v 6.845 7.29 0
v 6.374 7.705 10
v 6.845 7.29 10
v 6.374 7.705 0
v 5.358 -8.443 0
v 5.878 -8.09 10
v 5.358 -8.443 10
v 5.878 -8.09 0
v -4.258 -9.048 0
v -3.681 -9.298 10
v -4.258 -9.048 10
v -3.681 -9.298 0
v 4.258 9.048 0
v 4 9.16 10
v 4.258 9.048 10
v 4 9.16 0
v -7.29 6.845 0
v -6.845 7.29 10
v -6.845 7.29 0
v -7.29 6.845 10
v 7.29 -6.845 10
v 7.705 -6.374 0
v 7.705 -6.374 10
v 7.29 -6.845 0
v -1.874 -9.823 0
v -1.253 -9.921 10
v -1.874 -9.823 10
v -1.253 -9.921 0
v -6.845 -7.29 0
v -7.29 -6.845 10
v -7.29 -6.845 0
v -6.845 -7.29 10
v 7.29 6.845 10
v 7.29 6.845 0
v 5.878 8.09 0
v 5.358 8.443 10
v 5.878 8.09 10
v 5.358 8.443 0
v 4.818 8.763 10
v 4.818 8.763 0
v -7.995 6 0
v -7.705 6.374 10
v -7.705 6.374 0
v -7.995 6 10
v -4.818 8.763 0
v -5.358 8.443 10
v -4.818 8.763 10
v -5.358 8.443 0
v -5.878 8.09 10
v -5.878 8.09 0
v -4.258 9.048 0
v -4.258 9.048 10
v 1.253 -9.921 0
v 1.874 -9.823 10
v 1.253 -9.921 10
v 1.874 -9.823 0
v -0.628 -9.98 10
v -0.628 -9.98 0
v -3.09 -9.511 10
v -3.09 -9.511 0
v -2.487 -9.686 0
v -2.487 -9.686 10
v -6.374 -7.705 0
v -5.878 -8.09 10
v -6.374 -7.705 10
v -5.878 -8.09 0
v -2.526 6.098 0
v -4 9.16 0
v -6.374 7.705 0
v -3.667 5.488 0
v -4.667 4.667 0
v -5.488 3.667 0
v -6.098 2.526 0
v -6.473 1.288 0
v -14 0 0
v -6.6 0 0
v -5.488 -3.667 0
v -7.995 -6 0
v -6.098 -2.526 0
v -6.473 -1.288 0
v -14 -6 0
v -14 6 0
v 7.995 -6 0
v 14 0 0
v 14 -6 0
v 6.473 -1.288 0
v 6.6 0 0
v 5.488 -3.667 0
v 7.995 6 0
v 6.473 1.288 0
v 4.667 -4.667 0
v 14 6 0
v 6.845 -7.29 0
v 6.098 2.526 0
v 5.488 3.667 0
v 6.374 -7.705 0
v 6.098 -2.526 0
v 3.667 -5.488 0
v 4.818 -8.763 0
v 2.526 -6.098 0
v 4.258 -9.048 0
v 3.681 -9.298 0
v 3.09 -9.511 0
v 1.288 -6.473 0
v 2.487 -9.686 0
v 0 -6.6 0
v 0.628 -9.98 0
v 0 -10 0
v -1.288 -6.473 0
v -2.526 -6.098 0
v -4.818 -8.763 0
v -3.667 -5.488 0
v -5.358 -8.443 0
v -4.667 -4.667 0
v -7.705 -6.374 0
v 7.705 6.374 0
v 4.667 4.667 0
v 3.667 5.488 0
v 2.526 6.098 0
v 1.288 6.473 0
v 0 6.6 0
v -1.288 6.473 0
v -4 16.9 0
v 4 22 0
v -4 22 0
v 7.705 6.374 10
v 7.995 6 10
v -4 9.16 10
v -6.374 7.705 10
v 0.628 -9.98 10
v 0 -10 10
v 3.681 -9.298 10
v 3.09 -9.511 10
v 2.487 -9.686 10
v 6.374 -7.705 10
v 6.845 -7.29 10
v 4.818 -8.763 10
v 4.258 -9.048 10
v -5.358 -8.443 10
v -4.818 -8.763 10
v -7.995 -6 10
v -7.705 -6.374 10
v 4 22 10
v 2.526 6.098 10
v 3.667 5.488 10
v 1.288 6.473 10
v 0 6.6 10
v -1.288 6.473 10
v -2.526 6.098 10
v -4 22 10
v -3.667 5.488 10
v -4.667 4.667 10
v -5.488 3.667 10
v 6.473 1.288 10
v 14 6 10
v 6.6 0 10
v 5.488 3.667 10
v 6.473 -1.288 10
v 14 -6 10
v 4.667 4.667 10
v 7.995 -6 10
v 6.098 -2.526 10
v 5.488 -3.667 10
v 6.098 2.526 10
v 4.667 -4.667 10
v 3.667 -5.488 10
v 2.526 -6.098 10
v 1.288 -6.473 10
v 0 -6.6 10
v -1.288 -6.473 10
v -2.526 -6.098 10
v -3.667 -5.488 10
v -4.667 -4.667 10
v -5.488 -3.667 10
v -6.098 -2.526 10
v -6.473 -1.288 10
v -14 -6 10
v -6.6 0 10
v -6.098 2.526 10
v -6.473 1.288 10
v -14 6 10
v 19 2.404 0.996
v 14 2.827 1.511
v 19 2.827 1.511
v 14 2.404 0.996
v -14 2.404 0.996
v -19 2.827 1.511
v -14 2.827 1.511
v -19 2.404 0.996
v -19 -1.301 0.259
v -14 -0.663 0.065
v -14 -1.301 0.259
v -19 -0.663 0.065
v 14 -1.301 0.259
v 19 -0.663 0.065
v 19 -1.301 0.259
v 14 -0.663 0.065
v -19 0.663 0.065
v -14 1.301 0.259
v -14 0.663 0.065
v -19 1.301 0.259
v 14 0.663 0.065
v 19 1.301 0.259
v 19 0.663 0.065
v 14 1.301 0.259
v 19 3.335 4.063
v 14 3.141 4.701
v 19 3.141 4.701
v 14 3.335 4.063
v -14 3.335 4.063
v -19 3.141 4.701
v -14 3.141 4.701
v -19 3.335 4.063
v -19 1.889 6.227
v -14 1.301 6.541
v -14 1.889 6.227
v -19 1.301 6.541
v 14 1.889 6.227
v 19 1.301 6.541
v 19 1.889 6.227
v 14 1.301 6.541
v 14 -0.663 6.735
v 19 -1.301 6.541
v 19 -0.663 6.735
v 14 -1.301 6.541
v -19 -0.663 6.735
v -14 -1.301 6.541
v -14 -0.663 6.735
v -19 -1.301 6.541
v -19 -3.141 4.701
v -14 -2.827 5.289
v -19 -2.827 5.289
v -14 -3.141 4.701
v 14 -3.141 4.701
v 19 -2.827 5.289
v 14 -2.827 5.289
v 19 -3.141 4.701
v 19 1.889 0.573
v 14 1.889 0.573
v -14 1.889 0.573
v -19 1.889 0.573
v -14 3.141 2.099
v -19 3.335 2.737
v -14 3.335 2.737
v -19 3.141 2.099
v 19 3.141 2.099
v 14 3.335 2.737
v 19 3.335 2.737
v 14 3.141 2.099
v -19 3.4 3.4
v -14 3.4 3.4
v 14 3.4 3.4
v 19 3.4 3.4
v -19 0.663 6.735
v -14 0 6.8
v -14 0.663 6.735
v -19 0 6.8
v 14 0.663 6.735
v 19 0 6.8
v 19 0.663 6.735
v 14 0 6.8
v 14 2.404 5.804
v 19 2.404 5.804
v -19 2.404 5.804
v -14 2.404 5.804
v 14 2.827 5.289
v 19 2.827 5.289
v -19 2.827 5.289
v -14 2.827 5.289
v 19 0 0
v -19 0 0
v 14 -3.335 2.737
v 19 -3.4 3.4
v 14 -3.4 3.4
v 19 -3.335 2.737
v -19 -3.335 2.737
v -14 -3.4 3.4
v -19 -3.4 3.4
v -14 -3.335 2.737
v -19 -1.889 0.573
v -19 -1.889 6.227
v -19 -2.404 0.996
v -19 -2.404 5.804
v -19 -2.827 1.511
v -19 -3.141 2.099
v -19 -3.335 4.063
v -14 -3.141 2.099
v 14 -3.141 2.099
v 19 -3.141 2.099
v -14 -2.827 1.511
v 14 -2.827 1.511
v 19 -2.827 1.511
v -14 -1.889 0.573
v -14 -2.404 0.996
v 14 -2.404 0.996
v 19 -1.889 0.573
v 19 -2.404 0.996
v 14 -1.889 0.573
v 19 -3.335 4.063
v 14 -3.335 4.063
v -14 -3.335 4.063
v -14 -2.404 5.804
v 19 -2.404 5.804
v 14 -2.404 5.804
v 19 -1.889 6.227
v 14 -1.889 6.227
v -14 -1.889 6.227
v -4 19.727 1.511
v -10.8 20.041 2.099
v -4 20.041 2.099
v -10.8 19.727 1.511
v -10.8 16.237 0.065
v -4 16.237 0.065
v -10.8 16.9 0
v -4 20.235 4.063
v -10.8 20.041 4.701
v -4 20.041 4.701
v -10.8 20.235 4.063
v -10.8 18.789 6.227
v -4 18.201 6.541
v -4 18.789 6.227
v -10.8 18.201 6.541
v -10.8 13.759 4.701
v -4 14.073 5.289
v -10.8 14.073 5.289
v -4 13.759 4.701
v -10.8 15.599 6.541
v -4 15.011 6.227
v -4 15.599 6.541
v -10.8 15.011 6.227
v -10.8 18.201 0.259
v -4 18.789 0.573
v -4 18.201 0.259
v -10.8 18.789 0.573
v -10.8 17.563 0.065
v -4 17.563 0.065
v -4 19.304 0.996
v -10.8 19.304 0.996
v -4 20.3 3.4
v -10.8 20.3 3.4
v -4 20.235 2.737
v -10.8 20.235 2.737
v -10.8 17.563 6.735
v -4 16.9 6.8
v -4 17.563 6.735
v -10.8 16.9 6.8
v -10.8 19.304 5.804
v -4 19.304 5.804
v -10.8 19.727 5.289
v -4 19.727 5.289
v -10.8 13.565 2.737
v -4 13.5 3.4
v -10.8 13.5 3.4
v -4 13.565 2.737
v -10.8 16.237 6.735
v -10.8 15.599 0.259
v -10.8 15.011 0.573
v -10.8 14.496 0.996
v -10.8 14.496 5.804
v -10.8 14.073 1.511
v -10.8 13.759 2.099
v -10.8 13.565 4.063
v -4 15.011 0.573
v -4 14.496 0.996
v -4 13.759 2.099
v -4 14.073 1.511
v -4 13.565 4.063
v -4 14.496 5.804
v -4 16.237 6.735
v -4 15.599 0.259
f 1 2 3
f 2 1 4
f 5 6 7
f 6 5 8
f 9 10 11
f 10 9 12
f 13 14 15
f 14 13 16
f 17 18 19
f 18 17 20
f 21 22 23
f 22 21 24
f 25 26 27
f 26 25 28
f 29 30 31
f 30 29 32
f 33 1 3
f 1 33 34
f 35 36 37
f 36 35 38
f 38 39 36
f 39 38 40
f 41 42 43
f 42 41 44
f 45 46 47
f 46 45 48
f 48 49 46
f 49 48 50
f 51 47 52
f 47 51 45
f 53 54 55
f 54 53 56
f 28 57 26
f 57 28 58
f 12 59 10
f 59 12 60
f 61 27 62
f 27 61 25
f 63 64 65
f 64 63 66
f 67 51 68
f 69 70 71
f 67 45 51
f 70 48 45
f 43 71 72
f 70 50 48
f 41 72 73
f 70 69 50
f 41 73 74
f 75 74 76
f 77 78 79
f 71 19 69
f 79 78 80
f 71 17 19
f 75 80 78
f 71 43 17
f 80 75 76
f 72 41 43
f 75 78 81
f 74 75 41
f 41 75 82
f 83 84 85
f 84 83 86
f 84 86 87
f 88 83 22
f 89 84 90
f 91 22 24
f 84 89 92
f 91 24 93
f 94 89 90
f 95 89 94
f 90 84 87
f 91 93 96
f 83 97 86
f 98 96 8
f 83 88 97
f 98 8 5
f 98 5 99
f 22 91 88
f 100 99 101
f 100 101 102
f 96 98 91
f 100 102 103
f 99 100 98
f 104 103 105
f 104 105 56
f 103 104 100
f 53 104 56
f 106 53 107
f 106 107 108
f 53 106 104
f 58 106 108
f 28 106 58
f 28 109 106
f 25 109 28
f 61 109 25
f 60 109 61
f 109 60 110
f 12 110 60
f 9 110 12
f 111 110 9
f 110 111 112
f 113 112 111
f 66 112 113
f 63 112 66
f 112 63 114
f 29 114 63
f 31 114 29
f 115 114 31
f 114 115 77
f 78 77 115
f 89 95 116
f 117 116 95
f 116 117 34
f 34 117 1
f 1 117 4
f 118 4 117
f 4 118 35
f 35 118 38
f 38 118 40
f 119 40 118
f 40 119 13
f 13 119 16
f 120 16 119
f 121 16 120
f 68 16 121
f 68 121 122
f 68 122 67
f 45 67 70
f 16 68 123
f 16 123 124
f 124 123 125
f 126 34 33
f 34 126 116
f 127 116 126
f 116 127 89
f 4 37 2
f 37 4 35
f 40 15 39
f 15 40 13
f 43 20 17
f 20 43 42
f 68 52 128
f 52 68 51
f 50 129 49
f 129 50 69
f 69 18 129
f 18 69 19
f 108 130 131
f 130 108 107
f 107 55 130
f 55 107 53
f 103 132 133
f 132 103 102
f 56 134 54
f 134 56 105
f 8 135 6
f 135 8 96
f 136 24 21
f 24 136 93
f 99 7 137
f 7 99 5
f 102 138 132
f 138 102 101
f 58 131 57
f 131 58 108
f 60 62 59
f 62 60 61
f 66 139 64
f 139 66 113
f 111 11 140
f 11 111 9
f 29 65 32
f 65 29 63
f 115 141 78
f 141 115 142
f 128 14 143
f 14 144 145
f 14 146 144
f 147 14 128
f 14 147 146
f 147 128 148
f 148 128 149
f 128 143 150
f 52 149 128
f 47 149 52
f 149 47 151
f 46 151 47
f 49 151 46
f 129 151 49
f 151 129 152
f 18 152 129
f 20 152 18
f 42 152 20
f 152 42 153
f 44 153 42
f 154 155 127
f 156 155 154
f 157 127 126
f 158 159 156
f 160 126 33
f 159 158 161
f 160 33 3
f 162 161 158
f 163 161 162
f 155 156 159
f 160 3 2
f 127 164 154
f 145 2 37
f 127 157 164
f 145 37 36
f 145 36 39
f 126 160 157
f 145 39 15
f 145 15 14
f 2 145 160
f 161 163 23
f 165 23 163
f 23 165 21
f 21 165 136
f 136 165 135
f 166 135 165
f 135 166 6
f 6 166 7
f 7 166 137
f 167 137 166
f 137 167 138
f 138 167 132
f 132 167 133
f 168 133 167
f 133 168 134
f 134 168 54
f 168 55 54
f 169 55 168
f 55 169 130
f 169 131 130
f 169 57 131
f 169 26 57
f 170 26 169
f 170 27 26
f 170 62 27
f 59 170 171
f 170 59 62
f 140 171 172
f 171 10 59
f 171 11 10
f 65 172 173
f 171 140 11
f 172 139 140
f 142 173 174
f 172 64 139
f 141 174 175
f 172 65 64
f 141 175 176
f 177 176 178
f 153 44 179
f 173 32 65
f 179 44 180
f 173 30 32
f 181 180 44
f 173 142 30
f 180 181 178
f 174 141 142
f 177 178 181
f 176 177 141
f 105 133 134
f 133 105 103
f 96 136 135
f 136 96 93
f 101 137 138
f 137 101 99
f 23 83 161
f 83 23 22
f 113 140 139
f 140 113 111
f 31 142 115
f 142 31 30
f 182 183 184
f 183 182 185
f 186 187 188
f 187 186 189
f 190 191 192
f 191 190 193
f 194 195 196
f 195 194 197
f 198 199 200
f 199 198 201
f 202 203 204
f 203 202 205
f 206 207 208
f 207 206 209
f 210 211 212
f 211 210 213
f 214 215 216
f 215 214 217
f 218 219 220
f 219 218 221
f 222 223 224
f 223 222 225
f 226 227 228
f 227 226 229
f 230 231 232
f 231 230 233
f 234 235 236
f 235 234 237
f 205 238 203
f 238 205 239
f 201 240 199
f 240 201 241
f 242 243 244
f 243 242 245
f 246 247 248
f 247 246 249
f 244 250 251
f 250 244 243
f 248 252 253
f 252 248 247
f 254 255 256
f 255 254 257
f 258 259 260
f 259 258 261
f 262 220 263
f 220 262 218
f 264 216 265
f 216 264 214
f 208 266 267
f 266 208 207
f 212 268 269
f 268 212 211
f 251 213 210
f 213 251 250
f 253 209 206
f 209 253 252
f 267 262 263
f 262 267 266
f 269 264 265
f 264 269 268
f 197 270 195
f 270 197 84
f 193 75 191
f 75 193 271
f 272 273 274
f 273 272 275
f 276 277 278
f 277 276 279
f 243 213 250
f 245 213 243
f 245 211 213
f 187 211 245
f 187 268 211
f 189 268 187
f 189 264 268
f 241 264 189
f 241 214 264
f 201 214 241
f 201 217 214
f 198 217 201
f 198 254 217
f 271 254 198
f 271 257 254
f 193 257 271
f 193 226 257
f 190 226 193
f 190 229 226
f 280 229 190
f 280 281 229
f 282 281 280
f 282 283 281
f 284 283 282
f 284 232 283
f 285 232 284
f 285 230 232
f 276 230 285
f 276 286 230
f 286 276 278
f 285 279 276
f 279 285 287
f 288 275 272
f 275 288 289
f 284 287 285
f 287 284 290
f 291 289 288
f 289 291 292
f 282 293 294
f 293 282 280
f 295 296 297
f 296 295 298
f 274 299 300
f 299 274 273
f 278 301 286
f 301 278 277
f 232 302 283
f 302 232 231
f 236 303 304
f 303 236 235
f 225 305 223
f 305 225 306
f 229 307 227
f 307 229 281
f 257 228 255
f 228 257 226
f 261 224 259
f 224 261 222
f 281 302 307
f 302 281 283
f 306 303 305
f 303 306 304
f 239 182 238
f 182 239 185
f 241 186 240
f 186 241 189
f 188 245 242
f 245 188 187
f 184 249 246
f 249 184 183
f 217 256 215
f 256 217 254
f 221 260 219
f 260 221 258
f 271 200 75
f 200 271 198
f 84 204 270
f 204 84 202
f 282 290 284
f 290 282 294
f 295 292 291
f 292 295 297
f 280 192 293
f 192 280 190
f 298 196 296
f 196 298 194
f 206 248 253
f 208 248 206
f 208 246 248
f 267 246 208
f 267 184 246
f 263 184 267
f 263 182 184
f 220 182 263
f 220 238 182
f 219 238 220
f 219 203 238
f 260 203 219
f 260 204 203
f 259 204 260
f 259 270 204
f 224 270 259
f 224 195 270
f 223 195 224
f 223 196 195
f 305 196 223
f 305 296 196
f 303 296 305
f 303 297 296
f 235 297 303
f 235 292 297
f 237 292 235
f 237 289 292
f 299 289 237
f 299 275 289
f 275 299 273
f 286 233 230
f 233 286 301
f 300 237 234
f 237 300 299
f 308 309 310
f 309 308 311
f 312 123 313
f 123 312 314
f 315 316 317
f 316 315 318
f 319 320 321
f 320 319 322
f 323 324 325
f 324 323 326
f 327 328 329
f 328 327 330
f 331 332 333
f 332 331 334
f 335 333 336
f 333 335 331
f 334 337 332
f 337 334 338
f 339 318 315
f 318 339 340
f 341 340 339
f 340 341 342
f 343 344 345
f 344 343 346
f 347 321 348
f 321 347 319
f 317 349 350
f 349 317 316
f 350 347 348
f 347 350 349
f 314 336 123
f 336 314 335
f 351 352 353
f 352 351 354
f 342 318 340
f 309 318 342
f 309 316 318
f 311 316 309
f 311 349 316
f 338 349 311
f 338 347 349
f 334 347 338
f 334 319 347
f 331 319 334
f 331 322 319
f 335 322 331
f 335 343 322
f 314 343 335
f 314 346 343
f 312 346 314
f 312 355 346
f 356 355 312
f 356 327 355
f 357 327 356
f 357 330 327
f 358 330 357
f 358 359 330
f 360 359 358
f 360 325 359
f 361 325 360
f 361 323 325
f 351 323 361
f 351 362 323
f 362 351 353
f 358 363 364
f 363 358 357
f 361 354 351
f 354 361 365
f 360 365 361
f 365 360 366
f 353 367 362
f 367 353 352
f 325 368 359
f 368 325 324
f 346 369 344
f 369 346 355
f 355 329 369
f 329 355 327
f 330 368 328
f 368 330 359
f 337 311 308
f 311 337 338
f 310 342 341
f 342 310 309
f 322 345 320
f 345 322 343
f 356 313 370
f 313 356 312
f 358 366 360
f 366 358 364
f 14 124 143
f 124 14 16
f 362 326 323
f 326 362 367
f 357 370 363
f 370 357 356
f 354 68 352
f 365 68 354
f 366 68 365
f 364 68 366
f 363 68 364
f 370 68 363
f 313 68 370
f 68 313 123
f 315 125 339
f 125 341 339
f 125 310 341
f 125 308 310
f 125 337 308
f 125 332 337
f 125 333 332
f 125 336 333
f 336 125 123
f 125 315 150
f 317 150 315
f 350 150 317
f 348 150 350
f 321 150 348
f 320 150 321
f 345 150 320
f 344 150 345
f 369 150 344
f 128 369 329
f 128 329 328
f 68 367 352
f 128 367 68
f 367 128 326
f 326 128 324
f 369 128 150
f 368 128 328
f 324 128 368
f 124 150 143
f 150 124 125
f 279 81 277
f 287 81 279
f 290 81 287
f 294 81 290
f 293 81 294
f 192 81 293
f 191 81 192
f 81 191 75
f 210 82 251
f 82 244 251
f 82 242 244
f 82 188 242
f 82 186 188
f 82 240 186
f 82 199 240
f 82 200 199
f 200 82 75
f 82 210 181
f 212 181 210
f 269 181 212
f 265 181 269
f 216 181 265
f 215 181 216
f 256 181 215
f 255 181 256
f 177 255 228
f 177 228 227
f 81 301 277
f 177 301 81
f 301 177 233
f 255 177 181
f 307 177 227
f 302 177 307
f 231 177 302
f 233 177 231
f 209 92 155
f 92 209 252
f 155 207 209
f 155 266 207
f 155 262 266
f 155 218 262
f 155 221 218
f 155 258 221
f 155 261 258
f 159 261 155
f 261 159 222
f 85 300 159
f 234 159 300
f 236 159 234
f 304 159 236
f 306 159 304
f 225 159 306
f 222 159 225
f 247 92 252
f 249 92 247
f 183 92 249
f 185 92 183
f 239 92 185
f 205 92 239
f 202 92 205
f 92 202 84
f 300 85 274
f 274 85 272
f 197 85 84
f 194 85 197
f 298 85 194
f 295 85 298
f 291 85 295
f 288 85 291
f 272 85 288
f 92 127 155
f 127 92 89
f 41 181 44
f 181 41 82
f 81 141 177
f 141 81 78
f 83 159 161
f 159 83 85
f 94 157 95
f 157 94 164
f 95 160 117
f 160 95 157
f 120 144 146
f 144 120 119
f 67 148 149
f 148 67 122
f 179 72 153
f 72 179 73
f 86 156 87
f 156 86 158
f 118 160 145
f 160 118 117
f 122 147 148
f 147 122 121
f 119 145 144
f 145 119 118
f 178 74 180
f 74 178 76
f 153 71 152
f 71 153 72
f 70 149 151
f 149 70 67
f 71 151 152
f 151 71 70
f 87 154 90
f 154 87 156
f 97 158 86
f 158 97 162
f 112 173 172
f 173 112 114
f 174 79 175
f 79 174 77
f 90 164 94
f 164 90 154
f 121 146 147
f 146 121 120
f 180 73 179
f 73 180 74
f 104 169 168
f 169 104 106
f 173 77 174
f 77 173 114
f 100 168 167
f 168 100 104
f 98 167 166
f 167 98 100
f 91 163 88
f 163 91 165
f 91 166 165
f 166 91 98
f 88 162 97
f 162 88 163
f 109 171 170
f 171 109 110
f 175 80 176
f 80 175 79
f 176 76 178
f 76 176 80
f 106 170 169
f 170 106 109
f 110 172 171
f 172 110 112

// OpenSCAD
w=6.8;

rightPart();

module rightPart() {
    difference() {
        union() {
            cylinder($fn=100, d=14+6, h=10);
            translate([-38/2,0,w/2]) rotate([0,90,0]) cylinder($fn=32, d=w, h=38);
            
            translate([-w-4,13.5+w/2,w/2]) rotate([0,90,0]) cylinder($fn=32, d=w, h=w+8);

            translate([-4,0,0]) cube([8,22,10]);
            translate([-14,-6,0]) cube([28,12,10]);
            translate([-4,12,0]) cube([8,10,8]);
        }
        cylinder($fn=32, d=13.2, h=10);
    }
}

module leftPart() {
    mirror([0,1,0]) rightPart();
}
